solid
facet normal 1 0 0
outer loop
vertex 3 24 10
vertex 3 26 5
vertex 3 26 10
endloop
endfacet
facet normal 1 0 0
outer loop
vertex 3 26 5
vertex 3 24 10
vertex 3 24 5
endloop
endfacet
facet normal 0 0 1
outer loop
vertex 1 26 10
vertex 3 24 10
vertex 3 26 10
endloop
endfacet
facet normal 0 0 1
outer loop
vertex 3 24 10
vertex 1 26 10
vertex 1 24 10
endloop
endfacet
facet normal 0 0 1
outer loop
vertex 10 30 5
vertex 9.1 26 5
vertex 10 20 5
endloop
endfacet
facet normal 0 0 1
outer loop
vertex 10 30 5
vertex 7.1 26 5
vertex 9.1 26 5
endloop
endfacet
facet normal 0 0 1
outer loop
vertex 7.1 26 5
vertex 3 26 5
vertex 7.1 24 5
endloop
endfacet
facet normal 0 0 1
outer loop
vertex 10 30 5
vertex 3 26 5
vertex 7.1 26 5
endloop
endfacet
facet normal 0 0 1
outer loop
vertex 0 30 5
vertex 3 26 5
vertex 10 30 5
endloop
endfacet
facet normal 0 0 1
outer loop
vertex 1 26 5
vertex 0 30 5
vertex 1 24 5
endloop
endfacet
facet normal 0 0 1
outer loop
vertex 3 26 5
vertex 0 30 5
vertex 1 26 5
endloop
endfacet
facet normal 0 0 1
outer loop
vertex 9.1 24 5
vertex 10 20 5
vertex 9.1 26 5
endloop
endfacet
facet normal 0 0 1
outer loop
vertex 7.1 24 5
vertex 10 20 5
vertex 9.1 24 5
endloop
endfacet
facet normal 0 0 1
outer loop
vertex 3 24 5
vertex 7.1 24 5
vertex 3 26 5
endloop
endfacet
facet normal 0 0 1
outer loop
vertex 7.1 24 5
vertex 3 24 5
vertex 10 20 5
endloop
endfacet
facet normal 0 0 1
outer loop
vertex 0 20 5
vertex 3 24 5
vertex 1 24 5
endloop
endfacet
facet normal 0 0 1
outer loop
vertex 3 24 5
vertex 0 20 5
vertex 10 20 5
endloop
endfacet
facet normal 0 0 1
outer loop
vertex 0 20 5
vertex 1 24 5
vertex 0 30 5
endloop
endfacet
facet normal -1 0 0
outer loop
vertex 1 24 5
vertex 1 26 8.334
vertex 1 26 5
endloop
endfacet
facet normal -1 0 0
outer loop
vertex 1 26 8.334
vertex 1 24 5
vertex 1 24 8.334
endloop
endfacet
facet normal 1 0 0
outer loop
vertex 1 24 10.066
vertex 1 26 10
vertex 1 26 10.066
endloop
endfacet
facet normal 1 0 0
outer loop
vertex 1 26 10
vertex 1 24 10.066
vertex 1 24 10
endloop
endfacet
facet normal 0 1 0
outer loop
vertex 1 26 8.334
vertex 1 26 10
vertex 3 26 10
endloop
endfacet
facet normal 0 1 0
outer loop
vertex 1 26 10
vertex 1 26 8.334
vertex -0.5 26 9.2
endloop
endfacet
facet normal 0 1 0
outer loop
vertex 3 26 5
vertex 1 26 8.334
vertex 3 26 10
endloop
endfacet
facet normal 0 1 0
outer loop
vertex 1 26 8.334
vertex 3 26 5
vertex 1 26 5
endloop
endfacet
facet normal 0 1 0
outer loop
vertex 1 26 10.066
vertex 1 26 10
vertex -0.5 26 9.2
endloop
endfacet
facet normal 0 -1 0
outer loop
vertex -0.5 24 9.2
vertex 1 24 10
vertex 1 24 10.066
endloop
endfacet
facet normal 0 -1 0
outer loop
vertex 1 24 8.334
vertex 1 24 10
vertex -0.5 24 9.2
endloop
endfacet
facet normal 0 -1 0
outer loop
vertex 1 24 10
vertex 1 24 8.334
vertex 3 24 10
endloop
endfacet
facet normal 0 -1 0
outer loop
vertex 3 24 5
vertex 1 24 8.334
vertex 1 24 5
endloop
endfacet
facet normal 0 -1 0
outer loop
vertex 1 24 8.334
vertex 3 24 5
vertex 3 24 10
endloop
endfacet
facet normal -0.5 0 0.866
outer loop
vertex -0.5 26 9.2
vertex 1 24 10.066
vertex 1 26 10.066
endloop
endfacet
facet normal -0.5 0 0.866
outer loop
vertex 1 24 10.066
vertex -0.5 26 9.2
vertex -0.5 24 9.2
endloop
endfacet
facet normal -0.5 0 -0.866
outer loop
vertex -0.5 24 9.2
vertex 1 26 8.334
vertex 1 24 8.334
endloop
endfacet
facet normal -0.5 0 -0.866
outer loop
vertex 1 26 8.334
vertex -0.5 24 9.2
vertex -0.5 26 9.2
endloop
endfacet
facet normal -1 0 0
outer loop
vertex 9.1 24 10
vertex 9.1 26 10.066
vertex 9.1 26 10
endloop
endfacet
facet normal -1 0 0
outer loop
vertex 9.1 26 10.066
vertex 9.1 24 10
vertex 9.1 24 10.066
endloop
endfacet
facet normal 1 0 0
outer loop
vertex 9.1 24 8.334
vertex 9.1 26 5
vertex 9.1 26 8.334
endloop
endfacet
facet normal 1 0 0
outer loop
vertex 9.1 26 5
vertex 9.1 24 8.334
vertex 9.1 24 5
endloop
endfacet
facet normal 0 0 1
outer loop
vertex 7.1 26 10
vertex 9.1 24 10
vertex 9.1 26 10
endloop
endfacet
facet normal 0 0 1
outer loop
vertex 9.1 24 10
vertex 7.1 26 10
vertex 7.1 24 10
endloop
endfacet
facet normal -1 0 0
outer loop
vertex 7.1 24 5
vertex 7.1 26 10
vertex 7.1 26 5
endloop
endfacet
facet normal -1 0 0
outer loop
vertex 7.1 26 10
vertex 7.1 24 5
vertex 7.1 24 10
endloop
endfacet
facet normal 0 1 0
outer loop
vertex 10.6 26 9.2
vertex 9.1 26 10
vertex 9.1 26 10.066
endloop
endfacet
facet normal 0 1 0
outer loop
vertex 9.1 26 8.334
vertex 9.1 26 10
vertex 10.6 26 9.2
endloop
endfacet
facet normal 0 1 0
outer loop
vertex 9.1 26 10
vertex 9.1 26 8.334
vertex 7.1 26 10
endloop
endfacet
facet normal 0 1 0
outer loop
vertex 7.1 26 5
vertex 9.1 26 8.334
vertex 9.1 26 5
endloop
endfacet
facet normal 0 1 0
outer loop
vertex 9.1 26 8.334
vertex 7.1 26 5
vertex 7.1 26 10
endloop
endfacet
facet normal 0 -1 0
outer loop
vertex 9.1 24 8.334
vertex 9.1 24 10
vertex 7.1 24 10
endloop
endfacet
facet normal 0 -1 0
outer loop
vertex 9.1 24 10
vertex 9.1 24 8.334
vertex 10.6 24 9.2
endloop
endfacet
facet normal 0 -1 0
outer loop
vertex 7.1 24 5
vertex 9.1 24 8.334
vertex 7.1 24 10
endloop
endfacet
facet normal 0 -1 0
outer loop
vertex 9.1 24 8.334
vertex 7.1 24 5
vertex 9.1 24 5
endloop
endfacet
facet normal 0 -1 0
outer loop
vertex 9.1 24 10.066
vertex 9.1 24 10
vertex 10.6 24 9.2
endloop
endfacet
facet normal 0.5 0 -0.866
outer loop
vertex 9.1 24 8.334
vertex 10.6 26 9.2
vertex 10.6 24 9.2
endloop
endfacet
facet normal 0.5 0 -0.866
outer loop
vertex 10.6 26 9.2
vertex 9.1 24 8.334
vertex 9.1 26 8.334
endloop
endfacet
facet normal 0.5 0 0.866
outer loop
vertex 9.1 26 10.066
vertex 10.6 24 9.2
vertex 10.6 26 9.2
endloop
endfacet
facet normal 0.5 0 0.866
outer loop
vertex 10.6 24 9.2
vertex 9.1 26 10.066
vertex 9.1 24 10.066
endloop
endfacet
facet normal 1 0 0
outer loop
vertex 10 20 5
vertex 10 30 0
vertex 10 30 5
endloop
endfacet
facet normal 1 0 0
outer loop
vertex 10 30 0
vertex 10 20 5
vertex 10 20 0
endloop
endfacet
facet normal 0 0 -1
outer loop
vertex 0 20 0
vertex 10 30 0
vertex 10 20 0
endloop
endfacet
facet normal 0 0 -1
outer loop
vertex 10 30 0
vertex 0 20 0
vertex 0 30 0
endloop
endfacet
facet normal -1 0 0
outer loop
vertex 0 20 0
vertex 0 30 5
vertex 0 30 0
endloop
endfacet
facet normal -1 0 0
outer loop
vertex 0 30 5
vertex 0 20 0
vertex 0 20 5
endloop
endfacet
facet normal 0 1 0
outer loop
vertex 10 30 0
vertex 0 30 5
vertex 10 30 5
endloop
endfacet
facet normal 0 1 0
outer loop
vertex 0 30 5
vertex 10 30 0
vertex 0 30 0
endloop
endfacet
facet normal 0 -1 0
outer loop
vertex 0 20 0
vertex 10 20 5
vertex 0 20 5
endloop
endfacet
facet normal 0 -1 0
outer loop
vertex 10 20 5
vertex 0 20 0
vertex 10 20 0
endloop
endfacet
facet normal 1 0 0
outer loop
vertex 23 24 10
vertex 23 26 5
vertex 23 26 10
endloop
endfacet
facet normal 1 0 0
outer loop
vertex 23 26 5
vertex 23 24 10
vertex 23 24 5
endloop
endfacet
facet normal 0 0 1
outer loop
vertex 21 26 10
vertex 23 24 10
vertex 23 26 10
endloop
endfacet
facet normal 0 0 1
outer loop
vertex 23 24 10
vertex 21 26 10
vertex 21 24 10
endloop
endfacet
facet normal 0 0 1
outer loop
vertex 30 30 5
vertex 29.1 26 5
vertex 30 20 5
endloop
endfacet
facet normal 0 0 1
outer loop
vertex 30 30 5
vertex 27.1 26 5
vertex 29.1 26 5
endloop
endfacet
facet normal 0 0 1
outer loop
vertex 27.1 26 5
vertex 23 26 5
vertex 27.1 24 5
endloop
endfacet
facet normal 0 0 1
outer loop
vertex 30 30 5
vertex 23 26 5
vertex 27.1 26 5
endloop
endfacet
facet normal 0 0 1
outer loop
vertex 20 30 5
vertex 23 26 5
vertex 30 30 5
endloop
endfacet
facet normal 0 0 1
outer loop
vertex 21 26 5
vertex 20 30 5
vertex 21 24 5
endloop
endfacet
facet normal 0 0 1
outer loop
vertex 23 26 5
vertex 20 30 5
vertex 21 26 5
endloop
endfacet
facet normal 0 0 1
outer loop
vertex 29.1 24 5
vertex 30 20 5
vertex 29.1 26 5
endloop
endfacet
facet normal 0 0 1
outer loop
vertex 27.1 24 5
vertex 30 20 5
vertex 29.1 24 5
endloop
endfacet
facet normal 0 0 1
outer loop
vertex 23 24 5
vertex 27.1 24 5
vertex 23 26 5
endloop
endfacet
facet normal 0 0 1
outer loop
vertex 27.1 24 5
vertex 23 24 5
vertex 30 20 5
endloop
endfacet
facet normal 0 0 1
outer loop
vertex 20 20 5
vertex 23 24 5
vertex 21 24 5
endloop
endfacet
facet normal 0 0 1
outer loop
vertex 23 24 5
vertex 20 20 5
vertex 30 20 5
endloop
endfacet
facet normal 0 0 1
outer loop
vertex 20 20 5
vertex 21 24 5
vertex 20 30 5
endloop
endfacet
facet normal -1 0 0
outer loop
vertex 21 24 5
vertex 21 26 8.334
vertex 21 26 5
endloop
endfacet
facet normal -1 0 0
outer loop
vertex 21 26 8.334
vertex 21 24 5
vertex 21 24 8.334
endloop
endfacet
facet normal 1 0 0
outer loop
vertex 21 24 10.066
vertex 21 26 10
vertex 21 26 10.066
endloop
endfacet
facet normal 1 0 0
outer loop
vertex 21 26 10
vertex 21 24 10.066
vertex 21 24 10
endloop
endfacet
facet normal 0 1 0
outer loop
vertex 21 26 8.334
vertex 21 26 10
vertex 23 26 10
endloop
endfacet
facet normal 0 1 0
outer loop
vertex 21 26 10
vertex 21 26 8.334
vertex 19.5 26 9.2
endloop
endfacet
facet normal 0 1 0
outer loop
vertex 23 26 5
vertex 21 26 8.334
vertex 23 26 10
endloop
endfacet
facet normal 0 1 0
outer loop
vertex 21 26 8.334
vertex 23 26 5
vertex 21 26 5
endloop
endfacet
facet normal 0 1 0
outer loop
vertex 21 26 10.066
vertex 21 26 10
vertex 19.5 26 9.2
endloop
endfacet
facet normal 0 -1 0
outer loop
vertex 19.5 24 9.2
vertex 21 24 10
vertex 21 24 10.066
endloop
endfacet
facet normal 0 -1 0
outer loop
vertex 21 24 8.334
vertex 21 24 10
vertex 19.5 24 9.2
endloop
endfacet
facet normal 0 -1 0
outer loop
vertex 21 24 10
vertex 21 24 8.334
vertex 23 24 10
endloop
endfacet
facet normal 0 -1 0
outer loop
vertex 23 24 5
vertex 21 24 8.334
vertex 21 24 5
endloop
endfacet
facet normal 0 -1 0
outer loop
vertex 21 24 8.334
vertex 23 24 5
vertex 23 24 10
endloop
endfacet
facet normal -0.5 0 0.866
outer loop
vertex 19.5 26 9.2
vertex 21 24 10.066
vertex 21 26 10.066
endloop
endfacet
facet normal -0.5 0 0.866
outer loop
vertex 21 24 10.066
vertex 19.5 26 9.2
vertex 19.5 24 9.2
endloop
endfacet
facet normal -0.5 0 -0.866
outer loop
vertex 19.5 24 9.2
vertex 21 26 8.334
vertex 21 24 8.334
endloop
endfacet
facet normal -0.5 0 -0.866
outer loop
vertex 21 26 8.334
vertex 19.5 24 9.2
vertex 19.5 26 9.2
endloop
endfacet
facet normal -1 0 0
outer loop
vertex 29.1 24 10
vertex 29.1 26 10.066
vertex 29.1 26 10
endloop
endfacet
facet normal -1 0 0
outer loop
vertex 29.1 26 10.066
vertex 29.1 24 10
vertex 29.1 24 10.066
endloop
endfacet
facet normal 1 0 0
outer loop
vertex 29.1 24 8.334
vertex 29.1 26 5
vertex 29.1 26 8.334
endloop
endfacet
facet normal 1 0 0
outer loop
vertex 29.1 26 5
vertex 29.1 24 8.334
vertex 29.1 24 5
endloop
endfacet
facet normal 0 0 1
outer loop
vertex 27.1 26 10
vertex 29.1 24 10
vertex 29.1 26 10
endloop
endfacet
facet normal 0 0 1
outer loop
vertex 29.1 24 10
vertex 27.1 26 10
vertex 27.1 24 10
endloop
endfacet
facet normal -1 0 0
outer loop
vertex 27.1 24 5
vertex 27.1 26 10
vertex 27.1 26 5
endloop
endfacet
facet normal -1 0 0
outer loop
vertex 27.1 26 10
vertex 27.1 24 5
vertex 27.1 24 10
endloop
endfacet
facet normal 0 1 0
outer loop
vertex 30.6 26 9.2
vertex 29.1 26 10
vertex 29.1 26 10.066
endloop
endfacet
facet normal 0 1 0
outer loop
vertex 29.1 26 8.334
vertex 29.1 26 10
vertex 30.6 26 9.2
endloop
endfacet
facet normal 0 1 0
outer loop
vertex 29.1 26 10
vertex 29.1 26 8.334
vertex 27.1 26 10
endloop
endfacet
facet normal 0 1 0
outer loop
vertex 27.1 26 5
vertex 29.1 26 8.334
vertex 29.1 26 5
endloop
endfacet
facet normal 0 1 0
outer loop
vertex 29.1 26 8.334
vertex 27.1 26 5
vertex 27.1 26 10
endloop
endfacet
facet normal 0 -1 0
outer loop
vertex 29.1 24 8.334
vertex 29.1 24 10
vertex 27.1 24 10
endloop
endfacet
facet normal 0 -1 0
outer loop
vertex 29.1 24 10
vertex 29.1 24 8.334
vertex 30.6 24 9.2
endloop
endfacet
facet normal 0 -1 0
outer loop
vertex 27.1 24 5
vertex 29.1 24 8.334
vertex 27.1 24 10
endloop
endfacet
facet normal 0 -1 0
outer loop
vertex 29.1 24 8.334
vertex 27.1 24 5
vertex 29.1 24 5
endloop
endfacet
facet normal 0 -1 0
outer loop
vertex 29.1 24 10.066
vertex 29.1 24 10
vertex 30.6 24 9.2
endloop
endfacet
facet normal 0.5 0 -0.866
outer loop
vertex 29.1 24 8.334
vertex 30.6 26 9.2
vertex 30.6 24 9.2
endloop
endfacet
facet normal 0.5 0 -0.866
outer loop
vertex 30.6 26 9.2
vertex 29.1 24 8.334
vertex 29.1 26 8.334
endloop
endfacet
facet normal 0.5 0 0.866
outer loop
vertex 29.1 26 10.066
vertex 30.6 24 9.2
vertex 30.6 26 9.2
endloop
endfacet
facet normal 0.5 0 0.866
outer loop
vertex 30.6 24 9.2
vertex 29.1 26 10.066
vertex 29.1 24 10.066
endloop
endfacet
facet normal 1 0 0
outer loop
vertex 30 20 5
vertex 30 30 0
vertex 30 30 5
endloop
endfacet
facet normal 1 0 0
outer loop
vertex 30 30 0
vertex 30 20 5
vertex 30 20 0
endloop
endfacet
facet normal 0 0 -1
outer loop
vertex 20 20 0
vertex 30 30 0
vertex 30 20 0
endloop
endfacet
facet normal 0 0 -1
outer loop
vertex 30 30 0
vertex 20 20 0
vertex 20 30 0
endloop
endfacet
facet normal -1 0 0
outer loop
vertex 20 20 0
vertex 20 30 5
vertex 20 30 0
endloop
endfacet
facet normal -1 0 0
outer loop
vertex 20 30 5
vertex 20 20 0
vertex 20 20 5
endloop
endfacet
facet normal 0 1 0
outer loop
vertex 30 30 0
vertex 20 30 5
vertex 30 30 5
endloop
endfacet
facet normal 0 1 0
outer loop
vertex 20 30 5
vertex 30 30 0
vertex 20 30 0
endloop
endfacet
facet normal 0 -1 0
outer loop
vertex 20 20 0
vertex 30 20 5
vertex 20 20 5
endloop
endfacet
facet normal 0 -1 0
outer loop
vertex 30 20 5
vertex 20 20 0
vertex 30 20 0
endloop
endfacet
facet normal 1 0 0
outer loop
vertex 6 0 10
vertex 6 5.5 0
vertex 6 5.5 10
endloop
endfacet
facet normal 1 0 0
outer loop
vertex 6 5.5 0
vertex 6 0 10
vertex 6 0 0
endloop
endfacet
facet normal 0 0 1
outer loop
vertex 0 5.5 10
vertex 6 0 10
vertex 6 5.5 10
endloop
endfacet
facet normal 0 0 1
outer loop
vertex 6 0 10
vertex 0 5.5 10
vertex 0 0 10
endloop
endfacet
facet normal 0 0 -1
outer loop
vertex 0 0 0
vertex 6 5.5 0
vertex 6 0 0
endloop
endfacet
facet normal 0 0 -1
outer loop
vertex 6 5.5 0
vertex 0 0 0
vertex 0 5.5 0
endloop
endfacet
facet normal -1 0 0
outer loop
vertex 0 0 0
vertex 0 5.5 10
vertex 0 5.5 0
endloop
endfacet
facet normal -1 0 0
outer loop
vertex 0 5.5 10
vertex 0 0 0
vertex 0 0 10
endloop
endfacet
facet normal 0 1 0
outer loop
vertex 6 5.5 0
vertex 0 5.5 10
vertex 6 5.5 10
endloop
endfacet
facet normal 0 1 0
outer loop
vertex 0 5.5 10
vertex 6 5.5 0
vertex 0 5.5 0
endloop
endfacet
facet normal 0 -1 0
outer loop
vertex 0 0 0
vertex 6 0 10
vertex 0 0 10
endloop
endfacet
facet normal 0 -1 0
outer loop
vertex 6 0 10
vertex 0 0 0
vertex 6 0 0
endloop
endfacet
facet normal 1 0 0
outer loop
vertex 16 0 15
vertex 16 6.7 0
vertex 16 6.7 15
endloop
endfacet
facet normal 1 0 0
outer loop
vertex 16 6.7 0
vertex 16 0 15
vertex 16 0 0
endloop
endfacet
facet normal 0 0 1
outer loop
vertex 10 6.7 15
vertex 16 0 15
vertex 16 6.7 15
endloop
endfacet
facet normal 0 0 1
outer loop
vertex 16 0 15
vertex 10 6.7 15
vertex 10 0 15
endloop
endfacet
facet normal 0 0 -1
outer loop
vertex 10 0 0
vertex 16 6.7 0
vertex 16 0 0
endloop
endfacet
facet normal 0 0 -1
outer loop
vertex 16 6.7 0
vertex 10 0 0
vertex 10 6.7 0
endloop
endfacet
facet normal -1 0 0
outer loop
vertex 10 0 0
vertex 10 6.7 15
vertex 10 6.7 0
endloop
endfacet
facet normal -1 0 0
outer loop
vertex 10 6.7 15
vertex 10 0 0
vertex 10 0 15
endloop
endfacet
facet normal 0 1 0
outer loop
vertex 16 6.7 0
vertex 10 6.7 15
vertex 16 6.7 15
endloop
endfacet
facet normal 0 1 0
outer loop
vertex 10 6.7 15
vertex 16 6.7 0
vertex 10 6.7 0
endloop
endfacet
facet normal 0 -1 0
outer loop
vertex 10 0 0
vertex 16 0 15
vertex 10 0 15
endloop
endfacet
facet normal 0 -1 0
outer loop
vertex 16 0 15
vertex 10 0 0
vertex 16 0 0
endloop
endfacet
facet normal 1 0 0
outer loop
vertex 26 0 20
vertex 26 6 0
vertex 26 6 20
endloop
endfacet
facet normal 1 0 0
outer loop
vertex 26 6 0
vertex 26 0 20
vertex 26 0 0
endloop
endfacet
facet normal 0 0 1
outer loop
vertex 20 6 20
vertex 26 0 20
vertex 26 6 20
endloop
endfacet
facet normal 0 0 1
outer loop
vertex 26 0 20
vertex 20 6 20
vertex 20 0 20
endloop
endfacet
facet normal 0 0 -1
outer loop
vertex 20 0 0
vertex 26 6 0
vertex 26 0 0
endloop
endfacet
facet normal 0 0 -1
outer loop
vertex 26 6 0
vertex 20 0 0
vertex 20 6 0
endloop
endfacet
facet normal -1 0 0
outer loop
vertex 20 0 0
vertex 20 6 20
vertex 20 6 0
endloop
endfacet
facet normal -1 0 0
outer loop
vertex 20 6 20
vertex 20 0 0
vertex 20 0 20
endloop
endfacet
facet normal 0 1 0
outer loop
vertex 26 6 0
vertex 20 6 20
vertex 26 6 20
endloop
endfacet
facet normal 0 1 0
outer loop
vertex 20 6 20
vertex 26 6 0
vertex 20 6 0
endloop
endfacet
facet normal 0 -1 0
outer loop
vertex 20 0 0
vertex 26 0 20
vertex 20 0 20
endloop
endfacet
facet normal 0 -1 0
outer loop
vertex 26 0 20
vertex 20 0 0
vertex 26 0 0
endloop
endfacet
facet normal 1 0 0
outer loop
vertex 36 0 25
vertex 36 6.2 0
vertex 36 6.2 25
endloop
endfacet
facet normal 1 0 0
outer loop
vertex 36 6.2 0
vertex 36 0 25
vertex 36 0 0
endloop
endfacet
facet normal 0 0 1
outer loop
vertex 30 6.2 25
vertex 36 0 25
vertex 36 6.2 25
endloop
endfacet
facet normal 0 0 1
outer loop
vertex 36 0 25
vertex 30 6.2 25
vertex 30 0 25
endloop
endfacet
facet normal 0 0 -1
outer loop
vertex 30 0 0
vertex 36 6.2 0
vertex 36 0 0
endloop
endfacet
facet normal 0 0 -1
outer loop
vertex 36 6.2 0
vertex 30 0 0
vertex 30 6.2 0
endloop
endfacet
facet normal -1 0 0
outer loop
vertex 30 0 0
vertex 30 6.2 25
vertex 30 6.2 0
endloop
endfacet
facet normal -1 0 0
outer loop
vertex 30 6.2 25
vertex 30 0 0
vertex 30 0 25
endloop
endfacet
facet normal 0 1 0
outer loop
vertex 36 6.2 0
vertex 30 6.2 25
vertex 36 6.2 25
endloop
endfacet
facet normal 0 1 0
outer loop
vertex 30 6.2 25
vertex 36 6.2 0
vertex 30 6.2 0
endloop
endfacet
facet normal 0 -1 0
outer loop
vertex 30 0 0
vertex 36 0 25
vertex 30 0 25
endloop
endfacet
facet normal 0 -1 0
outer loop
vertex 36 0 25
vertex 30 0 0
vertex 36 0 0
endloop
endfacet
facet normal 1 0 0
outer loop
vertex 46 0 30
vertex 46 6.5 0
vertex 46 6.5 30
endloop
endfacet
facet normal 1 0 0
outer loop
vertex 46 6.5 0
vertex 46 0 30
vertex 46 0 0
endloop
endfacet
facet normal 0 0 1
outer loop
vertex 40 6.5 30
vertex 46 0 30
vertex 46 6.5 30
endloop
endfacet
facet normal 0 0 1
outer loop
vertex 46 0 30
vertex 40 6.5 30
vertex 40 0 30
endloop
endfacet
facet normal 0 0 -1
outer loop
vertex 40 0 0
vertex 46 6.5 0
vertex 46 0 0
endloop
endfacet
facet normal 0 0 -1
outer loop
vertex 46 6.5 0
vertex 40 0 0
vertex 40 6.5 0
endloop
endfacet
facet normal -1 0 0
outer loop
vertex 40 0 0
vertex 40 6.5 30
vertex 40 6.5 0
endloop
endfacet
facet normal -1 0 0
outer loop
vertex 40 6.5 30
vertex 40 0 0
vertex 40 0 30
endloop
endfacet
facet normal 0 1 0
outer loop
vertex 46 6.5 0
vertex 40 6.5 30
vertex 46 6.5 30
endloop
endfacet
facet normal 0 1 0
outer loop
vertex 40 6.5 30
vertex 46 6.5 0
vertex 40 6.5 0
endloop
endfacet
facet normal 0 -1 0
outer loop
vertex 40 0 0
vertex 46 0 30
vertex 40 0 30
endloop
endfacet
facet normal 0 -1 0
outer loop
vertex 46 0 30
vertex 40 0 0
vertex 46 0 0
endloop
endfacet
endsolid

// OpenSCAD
cube([6,5.5,10]);
translate([10,0,0])
cube([6,6.7,15]);
translate([20,0,0])
cube([6,6,20]);
translate([30,0,0])
cube([6,6.2,25]);
translate([40,0,0])
cube([6,6.5,30]);



translate([0,20,0])
top();
translate([20,20,0])
top();

module top() {
union() {
    cube([10,10,5]);
    translate([1,4,5])
    union() {
        union() {
            cube([2,2,5]);
            translate([-0.5,2,4.2])
            rotate([90,60,0])
            cylinder(h=2,d=2,$fn=3);
        }
        translate([6.1,0,0])
        union() {
            cube([2,2,5]);
            translate([2.5,02,4.2])
            rotate([90,0,0])
            cylinder(h=2,d=2,$fn=3);
        }
    }
}
}
